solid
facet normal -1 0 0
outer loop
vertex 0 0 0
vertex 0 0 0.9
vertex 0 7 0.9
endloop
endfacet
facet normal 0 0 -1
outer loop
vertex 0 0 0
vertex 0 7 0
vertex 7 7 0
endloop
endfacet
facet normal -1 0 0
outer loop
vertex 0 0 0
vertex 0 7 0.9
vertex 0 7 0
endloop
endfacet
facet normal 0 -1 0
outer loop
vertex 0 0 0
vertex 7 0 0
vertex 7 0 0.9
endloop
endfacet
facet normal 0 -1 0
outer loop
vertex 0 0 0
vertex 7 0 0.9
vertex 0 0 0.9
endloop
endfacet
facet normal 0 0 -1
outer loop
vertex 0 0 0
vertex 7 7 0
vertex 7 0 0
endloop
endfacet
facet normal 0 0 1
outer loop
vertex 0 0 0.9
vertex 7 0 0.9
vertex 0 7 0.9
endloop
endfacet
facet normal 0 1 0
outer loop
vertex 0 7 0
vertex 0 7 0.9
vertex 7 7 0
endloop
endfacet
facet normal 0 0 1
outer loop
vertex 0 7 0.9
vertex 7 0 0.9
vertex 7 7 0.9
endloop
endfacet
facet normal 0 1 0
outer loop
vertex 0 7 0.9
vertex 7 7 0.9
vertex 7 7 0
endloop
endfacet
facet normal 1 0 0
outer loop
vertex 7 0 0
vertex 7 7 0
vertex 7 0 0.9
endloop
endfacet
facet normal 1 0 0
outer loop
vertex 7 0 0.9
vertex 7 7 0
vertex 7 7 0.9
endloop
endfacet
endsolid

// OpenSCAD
/* Warning, this is a very basic generator with a lot of approximation 
input data : [VQFN, 8VW, 7x7x0.9mm, 48, , A, C04-00674A]
generated by com.zoubworld.electronics.cad.model3d.Basic
Date : Sun Feb 15 10:50:49 CET 2026
*/

//body
color("black")
translate([0,0,0])
cube([7.0,7.0,0.9], center=false);
